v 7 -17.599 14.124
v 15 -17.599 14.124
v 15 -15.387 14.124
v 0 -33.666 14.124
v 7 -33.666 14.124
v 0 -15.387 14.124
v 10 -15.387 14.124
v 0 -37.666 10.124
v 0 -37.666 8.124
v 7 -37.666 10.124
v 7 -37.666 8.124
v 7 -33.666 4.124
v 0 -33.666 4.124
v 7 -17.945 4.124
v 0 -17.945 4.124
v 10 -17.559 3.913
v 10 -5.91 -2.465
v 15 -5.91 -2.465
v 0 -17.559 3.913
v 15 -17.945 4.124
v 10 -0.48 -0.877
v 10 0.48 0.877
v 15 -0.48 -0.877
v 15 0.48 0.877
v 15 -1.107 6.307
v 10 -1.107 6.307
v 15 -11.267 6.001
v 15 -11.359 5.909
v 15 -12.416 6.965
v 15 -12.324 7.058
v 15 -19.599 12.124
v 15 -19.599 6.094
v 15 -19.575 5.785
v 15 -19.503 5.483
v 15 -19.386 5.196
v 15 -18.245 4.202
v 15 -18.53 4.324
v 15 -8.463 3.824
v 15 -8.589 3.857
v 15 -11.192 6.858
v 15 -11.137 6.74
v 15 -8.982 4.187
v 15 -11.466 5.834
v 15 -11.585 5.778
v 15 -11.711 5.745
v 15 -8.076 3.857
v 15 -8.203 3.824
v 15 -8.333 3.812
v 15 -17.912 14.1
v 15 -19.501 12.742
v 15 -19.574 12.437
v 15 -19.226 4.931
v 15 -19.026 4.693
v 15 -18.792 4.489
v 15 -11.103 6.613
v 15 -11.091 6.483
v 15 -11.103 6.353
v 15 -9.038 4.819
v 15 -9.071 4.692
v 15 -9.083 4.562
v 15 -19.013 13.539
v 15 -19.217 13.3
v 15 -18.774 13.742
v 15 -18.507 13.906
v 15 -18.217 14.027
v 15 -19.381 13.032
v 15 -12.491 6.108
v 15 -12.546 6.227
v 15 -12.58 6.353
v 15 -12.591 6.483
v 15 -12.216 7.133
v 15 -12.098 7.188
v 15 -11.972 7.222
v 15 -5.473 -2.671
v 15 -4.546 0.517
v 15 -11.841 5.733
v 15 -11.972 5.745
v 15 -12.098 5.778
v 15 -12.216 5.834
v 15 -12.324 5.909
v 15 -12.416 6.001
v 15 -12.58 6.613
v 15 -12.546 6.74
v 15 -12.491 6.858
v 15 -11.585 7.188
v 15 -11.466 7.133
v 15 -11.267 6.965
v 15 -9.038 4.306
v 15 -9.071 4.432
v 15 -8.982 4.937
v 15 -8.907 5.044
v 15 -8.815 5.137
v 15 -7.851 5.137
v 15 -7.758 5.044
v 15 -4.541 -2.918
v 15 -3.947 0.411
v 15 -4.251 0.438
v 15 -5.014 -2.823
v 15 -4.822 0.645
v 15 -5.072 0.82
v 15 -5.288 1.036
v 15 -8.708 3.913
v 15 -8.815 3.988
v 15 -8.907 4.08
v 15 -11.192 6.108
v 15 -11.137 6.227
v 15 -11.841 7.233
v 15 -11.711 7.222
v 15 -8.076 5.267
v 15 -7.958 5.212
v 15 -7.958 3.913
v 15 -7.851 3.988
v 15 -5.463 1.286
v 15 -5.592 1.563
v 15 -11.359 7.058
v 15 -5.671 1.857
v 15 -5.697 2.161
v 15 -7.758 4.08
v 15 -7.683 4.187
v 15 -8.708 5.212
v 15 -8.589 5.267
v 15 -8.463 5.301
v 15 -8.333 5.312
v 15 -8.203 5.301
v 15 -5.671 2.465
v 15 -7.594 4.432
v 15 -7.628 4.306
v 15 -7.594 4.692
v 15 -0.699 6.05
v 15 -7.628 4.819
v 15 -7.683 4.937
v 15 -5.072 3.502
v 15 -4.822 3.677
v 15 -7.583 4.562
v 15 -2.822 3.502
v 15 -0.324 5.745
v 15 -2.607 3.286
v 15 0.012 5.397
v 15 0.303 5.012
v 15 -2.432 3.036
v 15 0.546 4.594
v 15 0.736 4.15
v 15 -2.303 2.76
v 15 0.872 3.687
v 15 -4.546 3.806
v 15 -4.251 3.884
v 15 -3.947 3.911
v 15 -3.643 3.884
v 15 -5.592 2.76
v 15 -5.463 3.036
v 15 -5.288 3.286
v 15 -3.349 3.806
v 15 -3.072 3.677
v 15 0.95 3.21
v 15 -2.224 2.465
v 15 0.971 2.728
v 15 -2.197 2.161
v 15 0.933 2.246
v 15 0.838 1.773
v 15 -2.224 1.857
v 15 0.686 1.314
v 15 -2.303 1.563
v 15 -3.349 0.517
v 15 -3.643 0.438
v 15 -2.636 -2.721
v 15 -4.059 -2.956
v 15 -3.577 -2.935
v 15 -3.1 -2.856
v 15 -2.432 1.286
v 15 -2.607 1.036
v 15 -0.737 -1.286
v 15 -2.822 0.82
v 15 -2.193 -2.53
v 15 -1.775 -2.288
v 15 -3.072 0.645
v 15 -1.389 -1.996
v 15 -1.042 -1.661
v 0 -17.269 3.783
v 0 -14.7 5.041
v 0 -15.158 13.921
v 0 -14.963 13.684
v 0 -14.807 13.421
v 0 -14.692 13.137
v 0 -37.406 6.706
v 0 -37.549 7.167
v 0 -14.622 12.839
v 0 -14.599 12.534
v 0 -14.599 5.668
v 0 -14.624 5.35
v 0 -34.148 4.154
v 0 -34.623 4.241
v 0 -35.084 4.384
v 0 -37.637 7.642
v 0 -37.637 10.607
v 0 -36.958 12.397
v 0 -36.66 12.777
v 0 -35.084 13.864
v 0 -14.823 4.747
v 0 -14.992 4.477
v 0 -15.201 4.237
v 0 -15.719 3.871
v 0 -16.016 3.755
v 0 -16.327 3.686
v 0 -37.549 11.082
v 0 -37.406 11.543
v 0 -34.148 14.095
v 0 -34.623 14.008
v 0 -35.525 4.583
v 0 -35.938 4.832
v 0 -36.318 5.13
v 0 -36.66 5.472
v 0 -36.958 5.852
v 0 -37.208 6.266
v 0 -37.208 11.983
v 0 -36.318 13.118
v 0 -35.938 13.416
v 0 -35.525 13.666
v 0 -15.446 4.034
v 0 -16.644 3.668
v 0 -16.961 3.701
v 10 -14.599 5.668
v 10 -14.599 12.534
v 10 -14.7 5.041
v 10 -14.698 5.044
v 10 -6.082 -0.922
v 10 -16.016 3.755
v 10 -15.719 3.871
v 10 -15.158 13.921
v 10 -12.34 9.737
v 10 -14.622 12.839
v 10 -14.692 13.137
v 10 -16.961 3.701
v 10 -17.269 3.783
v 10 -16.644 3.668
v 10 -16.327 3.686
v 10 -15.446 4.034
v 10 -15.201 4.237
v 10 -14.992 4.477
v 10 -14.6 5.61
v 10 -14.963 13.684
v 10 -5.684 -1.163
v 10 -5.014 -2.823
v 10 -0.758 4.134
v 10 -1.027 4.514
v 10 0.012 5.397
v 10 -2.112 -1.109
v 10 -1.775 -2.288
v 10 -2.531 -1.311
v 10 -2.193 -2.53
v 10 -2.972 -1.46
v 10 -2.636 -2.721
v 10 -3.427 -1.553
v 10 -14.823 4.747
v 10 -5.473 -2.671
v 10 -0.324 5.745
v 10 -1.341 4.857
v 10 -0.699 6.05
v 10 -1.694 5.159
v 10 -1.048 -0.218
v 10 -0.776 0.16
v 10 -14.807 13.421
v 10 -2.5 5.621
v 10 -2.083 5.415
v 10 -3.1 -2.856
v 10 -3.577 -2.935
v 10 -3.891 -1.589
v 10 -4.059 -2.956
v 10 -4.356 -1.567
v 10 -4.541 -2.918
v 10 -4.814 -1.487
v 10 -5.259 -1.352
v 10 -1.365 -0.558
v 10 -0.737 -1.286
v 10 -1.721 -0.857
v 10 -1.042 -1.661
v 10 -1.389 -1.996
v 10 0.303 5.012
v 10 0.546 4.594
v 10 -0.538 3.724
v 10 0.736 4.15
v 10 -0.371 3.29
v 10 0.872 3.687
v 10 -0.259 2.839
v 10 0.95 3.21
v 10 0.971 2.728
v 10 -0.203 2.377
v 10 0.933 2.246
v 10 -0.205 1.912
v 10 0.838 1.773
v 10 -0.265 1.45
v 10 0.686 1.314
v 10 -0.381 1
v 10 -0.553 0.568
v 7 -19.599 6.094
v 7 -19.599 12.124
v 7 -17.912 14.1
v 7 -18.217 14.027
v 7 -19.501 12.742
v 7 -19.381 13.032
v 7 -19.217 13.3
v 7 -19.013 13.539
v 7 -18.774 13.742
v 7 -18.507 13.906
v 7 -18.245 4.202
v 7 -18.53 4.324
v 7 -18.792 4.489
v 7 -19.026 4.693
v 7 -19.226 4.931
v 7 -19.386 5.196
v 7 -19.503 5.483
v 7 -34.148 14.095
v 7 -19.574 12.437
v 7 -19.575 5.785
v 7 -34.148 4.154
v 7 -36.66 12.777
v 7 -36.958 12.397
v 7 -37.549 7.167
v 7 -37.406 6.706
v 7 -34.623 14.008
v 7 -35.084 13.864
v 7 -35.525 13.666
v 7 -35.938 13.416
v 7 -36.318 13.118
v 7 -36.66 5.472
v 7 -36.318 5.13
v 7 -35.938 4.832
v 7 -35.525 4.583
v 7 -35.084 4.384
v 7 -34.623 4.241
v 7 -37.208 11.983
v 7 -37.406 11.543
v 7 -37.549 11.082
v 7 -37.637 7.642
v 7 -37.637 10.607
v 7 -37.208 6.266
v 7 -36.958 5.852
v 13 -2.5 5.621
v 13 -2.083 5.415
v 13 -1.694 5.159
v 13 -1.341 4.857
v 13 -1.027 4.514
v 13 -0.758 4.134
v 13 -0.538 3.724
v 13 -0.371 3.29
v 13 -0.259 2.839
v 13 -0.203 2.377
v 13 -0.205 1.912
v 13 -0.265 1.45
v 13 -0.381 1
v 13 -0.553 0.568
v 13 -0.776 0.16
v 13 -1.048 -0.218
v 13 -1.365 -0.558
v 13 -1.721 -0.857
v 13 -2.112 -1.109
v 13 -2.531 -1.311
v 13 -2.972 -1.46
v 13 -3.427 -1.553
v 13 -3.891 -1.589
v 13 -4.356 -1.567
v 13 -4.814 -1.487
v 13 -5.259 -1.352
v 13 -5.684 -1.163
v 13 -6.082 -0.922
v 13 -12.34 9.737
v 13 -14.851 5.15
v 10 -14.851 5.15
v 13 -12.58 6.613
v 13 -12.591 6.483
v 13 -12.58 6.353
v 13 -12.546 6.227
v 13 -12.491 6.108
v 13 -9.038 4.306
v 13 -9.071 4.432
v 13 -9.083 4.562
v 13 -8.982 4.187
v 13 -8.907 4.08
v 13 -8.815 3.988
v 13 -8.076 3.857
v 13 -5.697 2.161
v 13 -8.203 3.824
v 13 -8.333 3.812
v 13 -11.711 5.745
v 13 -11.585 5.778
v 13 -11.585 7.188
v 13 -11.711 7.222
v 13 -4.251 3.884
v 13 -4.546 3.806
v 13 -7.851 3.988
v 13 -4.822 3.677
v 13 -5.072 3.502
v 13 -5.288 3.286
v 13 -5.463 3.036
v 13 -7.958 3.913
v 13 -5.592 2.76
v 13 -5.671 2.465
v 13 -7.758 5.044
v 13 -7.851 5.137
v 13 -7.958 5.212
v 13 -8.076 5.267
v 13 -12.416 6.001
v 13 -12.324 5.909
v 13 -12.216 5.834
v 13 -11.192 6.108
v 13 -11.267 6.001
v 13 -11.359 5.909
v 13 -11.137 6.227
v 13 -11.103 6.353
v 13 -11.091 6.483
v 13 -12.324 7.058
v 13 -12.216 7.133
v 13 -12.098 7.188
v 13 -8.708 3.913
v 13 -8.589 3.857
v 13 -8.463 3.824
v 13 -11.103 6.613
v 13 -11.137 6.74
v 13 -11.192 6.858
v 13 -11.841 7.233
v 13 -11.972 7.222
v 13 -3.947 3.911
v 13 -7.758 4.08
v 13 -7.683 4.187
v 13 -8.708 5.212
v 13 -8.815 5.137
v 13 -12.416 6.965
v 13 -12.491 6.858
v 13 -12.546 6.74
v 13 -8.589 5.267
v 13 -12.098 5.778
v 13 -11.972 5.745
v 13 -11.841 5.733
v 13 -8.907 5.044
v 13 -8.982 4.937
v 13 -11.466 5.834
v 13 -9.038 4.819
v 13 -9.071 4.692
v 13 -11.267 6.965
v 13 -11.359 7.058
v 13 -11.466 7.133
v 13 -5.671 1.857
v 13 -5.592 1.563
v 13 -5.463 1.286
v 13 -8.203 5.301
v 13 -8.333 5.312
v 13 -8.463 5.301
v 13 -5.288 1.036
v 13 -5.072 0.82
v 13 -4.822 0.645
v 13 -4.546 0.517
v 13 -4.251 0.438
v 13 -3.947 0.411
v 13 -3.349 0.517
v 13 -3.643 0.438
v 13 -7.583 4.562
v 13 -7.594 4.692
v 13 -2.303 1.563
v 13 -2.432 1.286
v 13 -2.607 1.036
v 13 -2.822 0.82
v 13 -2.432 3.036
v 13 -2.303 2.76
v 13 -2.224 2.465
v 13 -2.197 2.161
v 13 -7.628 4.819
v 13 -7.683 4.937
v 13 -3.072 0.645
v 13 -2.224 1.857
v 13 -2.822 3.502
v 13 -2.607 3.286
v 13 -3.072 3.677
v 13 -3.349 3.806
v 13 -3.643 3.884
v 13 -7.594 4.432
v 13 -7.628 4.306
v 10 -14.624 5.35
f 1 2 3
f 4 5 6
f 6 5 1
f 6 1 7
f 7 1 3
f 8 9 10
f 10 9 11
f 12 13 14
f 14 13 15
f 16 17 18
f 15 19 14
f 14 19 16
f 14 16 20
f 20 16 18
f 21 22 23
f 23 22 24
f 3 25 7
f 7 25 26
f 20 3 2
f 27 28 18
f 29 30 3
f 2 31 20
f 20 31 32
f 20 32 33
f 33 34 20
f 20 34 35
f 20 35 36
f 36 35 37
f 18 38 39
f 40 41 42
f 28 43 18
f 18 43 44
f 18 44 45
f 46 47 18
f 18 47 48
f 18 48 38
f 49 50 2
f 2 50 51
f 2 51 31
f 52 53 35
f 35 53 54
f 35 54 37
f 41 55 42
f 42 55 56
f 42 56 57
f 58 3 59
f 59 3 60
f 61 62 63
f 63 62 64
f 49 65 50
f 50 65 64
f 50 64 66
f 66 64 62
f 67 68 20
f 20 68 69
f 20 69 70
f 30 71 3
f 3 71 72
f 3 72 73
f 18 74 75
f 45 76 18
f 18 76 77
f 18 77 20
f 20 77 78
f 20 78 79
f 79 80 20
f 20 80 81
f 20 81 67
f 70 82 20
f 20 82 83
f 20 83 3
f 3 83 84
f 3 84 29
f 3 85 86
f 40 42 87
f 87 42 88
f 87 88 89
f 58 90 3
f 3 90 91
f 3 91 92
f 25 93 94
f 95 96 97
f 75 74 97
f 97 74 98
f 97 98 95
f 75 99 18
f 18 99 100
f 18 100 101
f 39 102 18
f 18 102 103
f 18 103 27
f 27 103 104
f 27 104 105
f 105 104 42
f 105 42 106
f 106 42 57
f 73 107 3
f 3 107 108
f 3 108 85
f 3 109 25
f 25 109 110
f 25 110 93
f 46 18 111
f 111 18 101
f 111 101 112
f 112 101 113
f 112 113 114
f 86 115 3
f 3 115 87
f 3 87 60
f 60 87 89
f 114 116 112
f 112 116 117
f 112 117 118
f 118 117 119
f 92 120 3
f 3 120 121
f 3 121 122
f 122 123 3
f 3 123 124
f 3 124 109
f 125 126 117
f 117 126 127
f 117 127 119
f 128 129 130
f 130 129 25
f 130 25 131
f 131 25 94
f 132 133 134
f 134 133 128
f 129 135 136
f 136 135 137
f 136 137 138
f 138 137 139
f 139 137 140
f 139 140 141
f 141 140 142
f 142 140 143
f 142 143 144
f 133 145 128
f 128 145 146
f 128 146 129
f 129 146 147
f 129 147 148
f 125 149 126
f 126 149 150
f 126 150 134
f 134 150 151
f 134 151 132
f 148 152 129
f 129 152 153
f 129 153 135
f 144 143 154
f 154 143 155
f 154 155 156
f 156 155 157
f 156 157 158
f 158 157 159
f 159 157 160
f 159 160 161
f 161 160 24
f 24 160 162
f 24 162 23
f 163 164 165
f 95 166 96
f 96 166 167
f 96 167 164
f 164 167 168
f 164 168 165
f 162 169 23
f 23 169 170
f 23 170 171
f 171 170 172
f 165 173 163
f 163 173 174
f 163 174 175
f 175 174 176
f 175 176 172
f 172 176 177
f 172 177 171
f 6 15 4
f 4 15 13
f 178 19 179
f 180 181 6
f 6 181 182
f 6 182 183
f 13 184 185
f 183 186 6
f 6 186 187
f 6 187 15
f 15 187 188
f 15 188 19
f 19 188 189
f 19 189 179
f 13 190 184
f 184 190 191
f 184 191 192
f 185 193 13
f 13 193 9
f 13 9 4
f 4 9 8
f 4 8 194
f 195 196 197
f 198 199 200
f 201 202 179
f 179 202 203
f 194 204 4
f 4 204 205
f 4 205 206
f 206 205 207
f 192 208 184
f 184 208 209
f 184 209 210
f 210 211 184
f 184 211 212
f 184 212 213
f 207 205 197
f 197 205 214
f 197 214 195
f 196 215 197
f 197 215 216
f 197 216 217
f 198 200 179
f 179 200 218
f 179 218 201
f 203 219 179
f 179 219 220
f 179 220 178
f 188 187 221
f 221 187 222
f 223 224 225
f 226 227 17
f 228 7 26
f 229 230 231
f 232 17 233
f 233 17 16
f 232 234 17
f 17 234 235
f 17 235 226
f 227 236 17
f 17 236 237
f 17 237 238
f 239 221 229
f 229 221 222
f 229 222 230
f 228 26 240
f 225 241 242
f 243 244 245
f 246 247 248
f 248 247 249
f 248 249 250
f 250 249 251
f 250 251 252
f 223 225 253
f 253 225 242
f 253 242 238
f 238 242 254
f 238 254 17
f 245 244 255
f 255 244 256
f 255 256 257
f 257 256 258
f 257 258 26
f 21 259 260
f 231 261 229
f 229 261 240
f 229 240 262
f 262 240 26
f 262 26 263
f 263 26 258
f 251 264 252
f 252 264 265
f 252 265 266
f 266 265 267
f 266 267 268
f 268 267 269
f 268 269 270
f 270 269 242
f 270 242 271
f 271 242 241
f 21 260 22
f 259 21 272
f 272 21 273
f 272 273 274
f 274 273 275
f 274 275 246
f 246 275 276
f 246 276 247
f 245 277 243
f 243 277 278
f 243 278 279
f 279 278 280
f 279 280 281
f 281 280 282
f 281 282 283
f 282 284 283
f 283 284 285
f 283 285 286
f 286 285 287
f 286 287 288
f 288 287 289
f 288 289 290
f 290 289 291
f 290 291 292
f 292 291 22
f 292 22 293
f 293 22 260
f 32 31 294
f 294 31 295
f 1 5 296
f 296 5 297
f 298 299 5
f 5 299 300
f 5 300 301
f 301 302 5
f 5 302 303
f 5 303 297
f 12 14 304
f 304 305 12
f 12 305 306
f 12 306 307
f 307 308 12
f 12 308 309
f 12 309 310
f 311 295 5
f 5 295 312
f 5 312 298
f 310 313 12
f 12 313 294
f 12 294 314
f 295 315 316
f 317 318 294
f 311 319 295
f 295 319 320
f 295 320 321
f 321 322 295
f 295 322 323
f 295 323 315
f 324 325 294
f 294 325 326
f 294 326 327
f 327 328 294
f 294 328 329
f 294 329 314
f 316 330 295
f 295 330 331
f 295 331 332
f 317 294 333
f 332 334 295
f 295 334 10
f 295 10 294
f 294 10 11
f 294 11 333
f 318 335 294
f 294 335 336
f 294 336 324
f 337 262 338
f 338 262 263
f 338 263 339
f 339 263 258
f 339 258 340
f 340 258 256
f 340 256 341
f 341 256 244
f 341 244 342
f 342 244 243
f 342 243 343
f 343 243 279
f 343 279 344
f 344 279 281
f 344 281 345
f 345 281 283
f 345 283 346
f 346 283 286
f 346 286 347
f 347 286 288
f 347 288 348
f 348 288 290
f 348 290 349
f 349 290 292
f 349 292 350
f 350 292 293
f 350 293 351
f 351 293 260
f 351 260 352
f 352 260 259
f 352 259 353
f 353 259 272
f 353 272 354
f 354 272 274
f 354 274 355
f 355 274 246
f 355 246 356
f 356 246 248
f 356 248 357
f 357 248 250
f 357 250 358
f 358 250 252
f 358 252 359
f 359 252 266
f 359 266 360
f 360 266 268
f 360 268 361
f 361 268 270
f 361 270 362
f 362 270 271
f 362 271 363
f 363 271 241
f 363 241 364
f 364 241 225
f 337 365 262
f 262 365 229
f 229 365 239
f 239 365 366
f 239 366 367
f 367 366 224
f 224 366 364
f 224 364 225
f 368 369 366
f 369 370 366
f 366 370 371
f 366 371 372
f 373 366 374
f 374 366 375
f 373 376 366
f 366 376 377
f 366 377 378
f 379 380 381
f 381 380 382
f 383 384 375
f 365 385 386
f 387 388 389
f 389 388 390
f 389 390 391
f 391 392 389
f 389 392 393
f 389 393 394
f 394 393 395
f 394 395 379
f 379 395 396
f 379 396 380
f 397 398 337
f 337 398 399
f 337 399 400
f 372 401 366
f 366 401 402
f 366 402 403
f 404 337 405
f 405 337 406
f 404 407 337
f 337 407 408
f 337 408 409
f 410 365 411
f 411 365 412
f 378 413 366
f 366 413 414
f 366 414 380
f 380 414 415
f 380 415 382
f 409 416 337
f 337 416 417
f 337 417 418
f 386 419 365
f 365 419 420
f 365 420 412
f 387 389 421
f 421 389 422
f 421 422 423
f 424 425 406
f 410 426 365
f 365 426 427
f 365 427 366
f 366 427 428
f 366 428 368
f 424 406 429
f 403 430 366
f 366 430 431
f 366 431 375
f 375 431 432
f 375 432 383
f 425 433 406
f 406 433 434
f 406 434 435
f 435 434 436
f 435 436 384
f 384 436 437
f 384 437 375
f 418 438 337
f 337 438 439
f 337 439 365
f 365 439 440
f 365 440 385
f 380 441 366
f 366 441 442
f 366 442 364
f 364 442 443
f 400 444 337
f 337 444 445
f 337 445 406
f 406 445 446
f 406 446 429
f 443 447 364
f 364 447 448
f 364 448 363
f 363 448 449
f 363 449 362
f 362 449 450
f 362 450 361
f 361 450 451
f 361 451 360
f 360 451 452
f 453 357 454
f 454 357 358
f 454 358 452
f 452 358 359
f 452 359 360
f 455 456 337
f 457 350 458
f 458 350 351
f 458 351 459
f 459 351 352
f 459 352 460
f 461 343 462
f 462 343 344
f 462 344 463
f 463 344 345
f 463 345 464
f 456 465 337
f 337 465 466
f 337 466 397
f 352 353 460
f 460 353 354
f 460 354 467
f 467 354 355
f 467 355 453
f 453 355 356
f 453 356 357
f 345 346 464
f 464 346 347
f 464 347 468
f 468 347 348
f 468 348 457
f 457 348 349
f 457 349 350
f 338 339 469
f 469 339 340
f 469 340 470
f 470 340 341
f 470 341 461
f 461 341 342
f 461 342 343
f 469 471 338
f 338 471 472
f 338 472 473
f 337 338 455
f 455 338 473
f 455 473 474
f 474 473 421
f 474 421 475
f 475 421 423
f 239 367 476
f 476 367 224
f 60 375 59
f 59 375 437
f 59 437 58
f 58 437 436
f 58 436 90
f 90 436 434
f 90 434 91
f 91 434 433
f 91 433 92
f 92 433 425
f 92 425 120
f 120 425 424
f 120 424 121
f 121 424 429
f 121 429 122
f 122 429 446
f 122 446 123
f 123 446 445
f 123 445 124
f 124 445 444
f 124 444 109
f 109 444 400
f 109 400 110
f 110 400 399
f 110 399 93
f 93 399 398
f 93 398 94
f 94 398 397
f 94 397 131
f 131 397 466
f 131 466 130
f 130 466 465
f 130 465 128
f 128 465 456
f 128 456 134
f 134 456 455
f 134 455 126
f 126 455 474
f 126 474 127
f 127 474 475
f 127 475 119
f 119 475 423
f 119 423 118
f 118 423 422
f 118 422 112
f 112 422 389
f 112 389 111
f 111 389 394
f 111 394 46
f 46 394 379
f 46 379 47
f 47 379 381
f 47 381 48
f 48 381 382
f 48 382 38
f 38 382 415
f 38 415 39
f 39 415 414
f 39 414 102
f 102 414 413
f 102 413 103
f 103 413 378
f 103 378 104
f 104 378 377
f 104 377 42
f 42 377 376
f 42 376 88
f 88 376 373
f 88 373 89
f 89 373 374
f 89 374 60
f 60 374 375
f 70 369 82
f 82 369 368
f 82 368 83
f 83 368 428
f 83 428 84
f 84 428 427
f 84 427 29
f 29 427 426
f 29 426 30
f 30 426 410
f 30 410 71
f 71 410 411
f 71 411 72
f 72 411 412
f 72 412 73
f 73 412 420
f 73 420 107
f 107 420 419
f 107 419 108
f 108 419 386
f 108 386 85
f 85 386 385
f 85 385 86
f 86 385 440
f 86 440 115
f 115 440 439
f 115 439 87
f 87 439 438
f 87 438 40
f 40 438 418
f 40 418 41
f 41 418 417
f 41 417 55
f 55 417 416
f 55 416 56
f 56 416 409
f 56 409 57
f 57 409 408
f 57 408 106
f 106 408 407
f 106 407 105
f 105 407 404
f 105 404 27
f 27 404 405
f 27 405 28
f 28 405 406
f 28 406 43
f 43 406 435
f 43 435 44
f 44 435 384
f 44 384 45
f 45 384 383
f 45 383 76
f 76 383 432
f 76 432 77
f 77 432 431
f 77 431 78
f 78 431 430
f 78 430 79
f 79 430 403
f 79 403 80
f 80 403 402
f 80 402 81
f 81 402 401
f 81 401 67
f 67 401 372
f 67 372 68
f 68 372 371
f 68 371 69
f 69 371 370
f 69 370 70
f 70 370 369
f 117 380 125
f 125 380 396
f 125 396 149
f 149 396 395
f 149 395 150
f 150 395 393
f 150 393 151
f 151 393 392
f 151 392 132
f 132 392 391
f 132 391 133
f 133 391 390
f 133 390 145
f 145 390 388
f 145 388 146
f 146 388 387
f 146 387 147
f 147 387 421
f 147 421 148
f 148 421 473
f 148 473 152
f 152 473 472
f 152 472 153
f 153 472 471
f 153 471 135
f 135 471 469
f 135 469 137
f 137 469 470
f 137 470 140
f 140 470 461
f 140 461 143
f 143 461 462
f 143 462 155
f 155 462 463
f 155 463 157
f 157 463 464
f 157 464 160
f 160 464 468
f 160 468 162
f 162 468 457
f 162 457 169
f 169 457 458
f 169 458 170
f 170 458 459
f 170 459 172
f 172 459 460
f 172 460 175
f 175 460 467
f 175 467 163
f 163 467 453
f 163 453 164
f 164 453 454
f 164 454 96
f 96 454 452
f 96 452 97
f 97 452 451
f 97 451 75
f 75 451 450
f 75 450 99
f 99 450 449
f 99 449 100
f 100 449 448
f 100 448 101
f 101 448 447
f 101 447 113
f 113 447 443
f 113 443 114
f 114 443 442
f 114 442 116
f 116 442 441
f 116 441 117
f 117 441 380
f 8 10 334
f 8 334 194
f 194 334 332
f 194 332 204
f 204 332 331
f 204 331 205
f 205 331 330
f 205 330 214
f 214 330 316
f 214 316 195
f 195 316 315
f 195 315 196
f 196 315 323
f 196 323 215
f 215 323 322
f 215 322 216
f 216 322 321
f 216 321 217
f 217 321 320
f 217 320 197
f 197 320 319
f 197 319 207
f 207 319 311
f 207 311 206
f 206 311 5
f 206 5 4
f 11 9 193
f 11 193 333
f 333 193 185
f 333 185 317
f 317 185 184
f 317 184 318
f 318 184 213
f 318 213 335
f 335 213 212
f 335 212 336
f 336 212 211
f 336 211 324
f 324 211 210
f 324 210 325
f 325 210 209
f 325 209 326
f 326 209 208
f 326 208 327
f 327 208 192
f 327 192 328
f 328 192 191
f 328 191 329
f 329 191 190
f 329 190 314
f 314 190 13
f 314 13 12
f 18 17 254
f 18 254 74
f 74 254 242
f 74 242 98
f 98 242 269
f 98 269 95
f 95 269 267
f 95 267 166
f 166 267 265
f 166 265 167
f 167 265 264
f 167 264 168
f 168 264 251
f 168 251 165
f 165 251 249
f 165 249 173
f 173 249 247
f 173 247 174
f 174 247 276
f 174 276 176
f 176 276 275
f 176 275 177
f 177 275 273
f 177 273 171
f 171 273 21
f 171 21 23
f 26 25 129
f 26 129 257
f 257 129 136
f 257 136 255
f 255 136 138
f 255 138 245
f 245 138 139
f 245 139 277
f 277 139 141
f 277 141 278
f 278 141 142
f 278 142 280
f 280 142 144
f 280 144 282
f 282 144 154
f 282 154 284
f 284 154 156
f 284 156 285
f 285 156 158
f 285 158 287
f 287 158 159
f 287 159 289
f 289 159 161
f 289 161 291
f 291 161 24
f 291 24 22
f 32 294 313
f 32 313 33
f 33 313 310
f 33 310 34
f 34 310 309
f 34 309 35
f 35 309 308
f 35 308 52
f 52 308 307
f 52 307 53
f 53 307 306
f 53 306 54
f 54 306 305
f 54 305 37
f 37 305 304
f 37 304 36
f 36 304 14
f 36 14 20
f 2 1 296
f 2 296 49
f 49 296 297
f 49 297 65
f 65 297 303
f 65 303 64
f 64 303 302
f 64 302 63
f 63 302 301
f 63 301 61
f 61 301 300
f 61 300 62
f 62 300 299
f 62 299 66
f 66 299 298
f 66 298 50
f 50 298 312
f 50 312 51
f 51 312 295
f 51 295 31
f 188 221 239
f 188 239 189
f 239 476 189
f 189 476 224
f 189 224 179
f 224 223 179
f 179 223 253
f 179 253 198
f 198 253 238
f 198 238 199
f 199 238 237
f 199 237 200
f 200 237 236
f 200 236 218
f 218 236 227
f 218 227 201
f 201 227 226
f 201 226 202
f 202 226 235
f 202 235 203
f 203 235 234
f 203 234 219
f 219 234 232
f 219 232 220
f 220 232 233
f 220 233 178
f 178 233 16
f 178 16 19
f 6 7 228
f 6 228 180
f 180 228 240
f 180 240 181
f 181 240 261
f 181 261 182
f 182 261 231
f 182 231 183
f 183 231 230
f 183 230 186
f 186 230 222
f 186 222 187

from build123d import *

# Parameters (mm, degrees)
EXTRUDE_THIN1_DEPTH = 15
SKETCH4_OUTSIDE_W   = 26.324
SKETCH4_OUTSIDE_H   = 51.391
CUT_EXTRUDE1_DEPTH  = 45.568245566
CUT_EXTRUDE2_DEPTH  = 3
SKETCH7_R           = 1.75
SKETCH7_R_2         = 0.75
CUT_EXTRUDE3_DEPTH  = 43.275324346
FILLET1_R           = 4
FILLET2_R           = 2
FILLET3_R           = 2


with BuildPart() as part:
    # Sketch3 → Extrude-Thin1 (new body)
    with BuildSketch(Plane(origin=(0, 0, 0), x_dir=(0, 0, -1), z_dir=(1, 0, 0))):
        Polygon((-4.385708038, 2.401159095), (-14.124404563, -15.386533403), (-14.124404563, -37.665690546), (-4.124404563, -37.665690546), (-4.124404563, -17.944847689), (4.385708038, -2.401159095), align=None)
    extrude(amount=EXTRUDE_THIN1_DEPTH)

    # Sketch4 outside → Cut-Extrude1 (cut, through all)
    with BuildSketch(Plane.XY.offset(14.124404563)):
        with Locations((7.5, -17.6325)):
            Rectangle(SKETCH4_OUTSIDE_W, SKETCH4_OUTSIDE_H)
        Polygon((15, 2.401159095), (10, 2.401159095), (10, -14.598840905), (0, -14.598840905), (0, -37.665690546), (7, -37.665690546), (7, -19.598840905), (15, -19.598840905), align=None, mode=Mode.SUBTRACT)
    extrude(amount=-CUT_EXTRUDE1_DEPTH, mode=Mode.SUBTRACT)

    # Sketch6 → Cut-Extrude2 (cut)
    with BuildSketch(Plane.ZY.offset(-10)):
        with BuildLine():
            Line((-0.921976714, -6.081964697), (5.150298165, -14.851265553))
            Line((5.150298165, -14.851265553), (9.736888227, -12.340124285))
            Line((9.736888227, -12.340124285), (5.620547292, -2.499956755))
            ThreePointArc((5.620547292, -2.499956755), (0.360173864, -0.657856206), (-0.921976714, -6.081964697))
        make_face()
    extrude(amount=-CUT_EXTRUDE2_DEPTH, mode=Mode.SUBTRACT)

    # Sketch7 → Cut-Extrude3 (cut, through all)
    with BuildSketch(Plane.ZY.offset(-13)):
        with Locations(Location((2.161043186, -3.947137235, 0), (0, 0, 270))):
            Circle(SKETCH7_R)
        with Locations(Location((4.562202281, -8.332845273, 0), (0, 0, 270))):
            Circle(SKETCH7_R_2)
        with Locations(Location((6.483129558, -11.841411704, 0), (0, 0, 270))):
            Circle(SKETCH7_R_2)
    extrude(amount=-CUT_EXTRUDE3_DEPTH, mode=Mode.SUBTRACT)

    # Fillet1
    fillet1_edges = [part.edges().sort_by_distance(p)[0] for p in [
        (3.5, -37.665690546, 4.124404563),
        (3.5, -37.665690546, 14.124404563),
        (12.5, 2.401159095, 4.385708038),
        (12.5, -2.401159095, -4.385708038),
    ]]
    fillet(fillet1_edges, radius=FILLET1_R)

    # Fillet2
    # the kernel refuses this fillet: 2 mm, written as the material it takes off along each edge
    with BuildSketch(Plane(origin=(7, -19.598840905, 14.124404563), x_dir=(0, 1, 0), z_dir=(1, 0, 0))) as fillet2_piece_1:
        with BuildLine():
            CenterArc((FILLET2_R, -FILLET2_R), FILLET2_R, 90, 90)
            Line((0, -FILLET2_R), (-FILLET2_R * 0.02, -FILLET2_R))
            Line((-FILLET2_R * 0.02, -FILLET2_R), (-FILLET2_R * 0.02, FILLET2_R * 0.02))
            Line((-FILLET2_R * 0.02, FILLET2_R * 0.02), (FILLET2_R, FILLET2_R * 0.02))
            Line((FILLET2_R, FILLET2_R * 0.02), (FILLET2_R, 0))
        make_face()
    extrude(amount=13, mode=Mode.SUBTRACT)
    with BuildSketch(Plane(origin=(7, -19.598840905, 4.124404563), x_dir=(0, 1, 0), z_dir=(1, 0, 0))) as fillet2_piece_2:
        with BuildLine():
            CenterArc((2, 1.969842457), FILLET2_R, 180, 80.037511241)
            Line((0, 1.969842457), (-0.04, 1.969842457))
            Line((-0.04, 1.969842457), (-0.04, 0))
            Line((-0.04, 0), (0, -0.04))
            ThreePointArc((0, -0.04), (0.826996608, -0.04), (1.64707308, -0.039396849))
            Line((1.64707308, -0.039396849), (1.653993216, 0))
        make_face()
    extrude(amount=12.924606142, mode=Mode.SUBTRACT)

    # Fillet3
    # the kernel refuses this fillet: 2 mm, written as the material it takes off along each edge
    with BuildSketch(Plane(origin=(10, -14.598840905, 2.292478098), x_dir=(0, -0.8771416076820373, 0.48023181909674706), z_dir=(-1, 0, 0))) as fillet3_piece_1:
        with BuildLine():
            CenterArc((FILLET3_R * 1.68756310969, FILLET3_R), FILLET3_R, 151.299456423, 118.700543577)
            Line((FILLET3_R * 0.810421502006, FILLET3_R * 1.4802318191), (FILLET3_R * 0.792878669852, FILLET3_R * 1.48983645548))
            Line((FILLET3_R * 0.792878669852, FILLET3_R * 1.48983645548), (-FILLET3_R * 0.0337512621938, -FILLET3_R * 0.02))
            Line((-FILLET3_R * 0.0337512621938, -FILLET3_R * 0.02), (FILLET3_R * 1.68756310969, -FILLET3_R * 0.02))
            Line((FILLET3_R * 1.68756310969, -FILLET3_R * 0.02), (FILLET3_R * 1.68756310969, 0))
        make_face()
    extrude(amount=18.437815548, mode=Mode.SUBTRACT)
    with BuildSketch(Plane(origin=(-2.898590554, -14.598840905, 13.693145803), x_dir=(0, -0.8771416076820384, 0.48023181909674506), z_dir=(1, 0, 0))) as fillet3_piece_2:
        with BuildLine():
            CenterArc((1.19748505, 1.97745339), FILLET3_R, 208.700543577, 52.688089319)
            Line((-0.556798166, 1.016989751), (-0.59188383, 0.997780479))
            Line((-0.59188383, 0.997780479), (-0.035085664, -0.019209273))
            Line((-0.035085664, -0.019209273), (0, -0.04))
            ThreePointArc((0, -0.04), (0.449011022, -0.04), (0.892032783, -0.039549068))
            Line((0.892032783, -0.039549068), (0.898022043, 0))
        make_face()
    extrude(amount=12.898590554, mode=Mode.SUBTRACT)


solid = part.part
